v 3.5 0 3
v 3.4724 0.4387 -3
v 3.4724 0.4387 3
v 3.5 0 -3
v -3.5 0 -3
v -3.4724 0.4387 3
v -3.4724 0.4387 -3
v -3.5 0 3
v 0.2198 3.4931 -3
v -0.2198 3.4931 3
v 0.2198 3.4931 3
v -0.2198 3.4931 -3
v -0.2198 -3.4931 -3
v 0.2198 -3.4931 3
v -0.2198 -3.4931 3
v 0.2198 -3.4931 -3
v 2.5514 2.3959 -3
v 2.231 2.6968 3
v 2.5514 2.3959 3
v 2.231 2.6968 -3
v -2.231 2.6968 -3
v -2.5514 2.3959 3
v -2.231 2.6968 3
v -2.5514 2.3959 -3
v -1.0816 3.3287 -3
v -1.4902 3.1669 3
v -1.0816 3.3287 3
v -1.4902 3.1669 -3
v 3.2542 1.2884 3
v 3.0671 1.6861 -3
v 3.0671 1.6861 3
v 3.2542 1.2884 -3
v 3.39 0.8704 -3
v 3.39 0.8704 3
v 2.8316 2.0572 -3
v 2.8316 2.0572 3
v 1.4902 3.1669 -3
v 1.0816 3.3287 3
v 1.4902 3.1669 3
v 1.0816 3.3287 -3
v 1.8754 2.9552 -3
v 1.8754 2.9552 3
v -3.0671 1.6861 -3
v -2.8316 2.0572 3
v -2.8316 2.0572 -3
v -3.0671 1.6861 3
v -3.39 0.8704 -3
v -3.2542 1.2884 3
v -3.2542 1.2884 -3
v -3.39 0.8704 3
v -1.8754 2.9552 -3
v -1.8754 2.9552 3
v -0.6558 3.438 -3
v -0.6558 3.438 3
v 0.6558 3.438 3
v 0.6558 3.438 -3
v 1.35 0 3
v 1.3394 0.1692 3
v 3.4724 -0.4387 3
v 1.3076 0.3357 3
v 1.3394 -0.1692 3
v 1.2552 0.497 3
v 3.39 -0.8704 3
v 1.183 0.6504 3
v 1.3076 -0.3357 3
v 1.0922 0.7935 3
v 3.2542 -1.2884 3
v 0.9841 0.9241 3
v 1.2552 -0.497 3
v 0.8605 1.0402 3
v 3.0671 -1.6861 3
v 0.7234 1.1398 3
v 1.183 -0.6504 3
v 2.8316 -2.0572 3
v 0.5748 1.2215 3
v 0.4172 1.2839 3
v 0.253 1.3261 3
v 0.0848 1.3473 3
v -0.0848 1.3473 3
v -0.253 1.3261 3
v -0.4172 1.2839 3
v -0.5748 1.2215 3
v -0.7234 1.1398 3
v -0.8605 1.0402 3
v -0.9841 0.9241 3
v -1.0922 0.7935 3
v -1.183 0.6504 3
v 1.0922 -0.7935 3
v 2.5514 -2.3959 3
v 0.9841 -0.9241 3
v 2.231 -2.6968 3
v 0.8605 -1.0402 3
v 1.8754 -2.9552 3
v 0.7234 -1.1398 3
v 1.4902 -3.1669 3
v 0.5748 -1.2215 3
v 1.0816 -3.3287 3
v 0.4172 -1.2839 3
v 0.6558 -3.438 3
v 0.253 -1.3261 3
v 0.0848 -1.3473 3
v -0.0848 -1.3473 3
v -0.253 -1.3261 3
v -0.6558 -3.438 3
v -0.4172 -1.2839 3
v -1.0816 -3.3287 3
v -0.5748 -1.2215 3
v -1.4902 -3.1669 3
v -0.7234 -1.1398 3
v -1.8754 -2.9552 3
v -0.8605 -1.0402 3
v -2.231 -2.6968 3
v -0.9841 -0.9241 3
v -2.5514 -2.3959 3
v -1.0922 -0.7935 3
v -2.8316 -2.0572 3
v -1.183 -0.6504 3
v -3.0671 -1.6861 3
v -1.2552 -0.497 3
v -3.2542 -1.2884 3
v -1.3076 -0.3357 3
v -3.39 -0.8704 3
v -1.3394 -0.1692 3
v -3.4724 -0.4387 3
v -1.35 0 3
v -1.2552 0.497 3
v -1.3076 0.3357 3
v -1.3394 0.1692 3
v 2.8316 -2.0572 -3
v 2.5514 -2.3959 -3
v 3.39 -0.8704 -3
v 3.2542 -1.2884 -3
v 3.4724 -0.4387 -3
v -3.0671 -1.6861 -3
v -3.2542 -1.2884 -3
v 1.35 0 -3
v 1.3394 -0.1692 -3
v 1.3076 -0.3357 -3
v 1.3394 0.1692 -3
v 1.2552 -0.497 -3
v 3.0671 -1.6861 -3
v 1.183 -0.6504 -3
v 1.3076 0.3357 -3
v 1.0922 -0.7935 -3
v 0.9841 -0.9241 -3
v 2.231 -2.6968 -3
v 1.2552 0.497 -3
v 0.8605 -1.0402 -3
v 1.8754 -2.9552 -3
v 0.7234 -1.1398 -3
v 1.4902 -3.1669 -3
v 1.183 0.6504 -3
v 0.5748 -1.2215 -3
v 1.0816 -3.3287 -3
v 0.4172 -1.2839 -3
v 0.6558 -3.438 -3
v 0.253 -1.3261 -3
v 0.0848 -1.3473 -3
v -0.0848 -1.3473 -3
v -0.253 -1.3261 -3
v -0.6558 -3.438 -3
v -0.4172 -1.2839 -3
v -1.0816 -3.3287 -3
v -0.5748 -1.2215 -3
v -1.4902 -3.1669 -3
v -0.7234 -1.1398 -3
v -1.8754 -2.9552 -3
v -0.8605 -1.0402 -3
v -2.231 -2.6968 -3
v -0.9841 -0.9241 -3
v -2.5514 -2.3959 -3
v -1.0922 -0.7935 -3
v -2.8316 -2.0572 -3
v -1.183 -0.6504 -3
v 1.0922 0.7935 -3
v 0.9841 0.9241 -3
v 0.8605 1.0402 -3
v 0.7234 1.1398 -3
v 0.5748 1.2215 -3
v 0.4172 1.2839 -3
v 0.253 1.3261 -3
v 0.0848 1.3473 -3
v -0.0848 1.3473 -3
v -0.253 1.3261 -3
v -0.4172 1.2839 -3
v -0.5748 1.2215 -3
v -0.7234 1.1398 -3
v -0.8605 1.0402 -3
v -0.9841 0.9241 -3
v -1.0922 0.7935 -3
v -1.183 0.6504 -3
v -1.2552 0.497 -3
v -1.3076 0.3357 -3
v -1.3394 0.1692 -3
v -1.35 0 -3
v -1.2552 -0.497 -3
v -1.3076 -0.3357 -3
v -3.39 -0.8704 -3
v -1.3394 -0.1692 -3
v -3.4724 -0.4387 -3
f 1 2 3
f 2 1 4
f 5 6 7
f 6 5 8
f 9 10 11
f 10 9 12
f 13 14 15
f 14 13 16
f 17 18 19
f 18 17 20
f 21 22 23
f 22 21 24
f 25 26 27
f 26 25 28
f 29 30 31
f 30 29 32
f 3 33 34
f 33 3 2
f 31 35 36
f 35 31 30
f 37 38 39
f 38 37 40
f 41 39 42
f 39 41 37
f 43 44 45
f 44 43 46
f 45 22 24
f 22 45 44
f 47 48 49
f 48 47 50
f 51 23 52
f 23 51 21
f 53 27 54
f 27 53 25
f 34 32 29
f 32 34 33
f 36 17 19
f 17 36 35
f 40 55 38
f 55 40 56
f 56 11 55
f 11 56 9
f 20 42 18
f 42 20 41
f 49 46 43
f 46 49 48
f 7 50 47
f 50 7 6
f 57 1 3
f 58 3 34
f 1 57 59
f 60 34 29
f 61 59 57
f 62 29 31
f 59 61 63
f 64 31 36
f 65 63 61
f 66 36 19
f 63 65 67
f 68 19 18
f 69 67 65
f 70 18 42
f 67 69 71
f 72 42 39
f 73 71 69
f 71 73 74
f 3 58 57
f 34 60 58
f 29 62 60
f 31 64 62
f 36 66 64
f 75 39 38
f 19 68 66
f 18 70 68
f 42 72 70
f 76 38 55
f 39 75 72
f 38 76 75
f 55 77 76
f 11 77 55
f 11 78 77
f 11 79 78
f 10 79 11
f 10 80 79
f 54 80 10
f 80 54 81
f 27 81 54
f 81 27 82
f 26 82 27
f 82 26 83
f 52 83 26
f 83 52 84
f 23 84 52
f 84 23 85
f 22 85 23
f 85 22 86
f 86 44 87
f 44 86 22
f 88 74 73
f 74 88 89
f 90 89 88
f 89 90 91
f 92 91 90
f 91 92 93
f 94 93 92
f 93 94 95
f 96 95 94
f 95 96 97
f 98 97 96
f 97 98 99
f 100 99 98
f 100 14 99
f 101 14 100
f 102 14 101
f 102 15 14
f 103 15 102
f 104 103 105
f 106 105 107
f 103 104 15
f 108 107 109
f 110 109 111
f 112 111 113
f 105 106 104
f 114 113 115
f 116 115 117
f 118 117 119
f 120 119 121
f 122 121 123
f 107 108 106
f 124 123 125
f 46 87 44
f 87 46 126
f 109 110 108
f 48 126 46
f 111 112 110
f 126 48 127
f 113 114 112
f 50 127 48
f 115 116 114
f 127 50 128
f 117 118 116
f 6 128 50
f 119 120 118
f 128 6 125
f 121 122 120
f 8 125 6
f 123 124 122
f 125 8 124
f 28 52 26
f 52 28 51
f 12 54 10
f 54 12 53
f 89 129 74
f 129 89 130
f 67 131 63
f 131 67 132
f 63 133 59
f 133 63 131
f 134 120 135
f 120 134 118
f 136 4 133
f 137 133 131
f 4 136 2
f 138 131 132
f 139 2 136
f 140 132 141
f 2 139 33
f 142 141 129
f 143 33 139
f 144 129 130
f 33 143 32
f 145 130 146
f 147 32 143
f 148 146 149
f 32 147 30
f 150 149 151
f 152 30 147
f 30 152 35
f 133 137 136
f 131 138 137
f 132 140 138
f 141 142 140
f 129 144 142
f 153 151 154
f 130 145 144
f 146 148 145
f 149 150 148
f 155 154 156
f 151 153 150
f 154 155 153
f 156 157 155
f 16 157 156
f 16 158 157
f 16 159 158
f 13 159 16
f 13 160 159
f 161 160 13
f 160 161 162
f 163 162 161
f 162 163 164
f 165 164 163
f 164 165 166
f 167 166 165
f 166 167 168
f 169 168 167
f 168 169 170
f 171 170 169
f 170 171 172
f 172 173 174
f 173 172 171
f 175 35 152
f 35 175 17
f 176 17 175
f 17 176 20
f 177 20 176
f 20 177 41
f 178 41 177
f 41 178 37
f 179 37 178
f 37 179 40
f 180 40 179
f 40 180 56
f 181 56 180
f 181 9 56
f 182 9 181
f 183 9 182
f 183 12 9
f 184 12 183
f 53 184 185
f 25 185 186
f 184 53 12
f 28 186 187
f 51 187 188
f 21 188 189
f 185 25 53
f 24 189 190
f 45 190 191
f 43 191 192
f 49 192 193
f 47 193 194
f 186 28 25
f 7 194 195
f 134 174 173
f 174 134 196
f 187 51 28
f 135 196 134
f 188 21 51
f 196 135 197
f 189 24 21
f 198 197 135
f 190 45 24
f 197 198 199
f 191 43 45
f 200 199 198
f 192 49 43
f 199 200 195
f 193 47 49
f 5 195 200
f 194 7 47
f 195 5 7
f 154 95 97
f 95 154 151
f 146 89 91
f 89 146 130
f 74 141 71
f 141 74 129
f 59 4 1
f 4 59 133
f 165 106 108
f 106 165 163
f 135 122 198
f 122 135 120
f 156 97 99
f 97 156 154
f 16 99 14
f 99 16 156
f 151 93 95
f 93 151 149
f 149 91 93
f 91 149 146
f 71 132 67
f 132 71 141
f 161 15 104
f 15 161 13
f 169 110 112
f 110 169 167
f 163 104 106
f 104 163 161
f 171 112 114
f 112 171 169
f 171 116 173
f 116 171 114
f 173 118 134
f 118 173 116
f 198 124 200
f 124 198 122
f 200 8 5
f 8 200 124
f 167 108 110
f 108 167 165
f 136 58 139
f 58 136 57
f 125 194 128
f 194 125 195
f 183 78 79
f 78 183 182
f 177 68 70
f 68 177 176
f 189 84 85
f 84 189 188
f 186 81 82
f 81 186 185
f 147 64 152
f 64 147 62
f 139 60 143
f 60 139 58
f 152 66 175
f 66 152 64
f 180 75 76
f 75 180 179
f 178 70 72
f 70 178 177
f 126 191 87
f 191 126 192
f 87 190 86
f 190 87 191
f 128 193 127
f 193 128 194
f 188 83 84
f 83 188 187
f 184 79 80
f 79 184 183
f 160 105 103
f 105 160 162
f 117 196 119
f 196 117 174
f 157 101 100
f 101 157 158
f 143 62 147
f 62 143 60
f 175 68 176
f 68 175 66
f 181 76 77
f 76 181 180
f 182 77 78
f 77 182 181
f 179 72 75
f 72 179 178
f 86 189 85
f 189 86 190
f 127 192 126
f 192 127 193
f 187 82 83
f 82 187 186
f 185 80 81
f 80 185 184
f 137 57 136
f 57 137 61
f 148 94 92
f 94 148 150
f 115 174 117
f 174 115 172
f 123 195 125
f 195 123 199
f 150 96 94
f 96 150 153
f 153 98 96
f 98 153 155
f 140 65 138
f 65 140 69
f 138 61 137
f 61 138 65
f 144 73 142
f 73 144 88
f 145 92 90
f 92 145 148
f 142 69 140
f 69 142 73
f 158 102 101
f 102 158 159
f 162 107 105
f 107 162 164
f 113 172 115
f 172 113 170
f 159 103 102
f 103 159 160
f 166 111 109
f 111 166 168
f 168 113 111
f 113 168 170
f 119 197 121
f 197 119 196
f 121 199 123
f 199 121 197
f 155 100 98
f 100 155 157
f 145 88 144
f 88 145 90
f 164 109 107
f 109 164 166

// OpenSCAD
$fn = 50;


difference() {
	union() {
		translate(v = [0, 0, -3.0000000000]) {
			cylinder(h = 6, r = 3.5000000000);
		}
	}
	union() {
		translate(v = [0, 0, -100.0000000000]) {
			cylinder(h = 200, r = 1.3500000000);
		}
	}
}
